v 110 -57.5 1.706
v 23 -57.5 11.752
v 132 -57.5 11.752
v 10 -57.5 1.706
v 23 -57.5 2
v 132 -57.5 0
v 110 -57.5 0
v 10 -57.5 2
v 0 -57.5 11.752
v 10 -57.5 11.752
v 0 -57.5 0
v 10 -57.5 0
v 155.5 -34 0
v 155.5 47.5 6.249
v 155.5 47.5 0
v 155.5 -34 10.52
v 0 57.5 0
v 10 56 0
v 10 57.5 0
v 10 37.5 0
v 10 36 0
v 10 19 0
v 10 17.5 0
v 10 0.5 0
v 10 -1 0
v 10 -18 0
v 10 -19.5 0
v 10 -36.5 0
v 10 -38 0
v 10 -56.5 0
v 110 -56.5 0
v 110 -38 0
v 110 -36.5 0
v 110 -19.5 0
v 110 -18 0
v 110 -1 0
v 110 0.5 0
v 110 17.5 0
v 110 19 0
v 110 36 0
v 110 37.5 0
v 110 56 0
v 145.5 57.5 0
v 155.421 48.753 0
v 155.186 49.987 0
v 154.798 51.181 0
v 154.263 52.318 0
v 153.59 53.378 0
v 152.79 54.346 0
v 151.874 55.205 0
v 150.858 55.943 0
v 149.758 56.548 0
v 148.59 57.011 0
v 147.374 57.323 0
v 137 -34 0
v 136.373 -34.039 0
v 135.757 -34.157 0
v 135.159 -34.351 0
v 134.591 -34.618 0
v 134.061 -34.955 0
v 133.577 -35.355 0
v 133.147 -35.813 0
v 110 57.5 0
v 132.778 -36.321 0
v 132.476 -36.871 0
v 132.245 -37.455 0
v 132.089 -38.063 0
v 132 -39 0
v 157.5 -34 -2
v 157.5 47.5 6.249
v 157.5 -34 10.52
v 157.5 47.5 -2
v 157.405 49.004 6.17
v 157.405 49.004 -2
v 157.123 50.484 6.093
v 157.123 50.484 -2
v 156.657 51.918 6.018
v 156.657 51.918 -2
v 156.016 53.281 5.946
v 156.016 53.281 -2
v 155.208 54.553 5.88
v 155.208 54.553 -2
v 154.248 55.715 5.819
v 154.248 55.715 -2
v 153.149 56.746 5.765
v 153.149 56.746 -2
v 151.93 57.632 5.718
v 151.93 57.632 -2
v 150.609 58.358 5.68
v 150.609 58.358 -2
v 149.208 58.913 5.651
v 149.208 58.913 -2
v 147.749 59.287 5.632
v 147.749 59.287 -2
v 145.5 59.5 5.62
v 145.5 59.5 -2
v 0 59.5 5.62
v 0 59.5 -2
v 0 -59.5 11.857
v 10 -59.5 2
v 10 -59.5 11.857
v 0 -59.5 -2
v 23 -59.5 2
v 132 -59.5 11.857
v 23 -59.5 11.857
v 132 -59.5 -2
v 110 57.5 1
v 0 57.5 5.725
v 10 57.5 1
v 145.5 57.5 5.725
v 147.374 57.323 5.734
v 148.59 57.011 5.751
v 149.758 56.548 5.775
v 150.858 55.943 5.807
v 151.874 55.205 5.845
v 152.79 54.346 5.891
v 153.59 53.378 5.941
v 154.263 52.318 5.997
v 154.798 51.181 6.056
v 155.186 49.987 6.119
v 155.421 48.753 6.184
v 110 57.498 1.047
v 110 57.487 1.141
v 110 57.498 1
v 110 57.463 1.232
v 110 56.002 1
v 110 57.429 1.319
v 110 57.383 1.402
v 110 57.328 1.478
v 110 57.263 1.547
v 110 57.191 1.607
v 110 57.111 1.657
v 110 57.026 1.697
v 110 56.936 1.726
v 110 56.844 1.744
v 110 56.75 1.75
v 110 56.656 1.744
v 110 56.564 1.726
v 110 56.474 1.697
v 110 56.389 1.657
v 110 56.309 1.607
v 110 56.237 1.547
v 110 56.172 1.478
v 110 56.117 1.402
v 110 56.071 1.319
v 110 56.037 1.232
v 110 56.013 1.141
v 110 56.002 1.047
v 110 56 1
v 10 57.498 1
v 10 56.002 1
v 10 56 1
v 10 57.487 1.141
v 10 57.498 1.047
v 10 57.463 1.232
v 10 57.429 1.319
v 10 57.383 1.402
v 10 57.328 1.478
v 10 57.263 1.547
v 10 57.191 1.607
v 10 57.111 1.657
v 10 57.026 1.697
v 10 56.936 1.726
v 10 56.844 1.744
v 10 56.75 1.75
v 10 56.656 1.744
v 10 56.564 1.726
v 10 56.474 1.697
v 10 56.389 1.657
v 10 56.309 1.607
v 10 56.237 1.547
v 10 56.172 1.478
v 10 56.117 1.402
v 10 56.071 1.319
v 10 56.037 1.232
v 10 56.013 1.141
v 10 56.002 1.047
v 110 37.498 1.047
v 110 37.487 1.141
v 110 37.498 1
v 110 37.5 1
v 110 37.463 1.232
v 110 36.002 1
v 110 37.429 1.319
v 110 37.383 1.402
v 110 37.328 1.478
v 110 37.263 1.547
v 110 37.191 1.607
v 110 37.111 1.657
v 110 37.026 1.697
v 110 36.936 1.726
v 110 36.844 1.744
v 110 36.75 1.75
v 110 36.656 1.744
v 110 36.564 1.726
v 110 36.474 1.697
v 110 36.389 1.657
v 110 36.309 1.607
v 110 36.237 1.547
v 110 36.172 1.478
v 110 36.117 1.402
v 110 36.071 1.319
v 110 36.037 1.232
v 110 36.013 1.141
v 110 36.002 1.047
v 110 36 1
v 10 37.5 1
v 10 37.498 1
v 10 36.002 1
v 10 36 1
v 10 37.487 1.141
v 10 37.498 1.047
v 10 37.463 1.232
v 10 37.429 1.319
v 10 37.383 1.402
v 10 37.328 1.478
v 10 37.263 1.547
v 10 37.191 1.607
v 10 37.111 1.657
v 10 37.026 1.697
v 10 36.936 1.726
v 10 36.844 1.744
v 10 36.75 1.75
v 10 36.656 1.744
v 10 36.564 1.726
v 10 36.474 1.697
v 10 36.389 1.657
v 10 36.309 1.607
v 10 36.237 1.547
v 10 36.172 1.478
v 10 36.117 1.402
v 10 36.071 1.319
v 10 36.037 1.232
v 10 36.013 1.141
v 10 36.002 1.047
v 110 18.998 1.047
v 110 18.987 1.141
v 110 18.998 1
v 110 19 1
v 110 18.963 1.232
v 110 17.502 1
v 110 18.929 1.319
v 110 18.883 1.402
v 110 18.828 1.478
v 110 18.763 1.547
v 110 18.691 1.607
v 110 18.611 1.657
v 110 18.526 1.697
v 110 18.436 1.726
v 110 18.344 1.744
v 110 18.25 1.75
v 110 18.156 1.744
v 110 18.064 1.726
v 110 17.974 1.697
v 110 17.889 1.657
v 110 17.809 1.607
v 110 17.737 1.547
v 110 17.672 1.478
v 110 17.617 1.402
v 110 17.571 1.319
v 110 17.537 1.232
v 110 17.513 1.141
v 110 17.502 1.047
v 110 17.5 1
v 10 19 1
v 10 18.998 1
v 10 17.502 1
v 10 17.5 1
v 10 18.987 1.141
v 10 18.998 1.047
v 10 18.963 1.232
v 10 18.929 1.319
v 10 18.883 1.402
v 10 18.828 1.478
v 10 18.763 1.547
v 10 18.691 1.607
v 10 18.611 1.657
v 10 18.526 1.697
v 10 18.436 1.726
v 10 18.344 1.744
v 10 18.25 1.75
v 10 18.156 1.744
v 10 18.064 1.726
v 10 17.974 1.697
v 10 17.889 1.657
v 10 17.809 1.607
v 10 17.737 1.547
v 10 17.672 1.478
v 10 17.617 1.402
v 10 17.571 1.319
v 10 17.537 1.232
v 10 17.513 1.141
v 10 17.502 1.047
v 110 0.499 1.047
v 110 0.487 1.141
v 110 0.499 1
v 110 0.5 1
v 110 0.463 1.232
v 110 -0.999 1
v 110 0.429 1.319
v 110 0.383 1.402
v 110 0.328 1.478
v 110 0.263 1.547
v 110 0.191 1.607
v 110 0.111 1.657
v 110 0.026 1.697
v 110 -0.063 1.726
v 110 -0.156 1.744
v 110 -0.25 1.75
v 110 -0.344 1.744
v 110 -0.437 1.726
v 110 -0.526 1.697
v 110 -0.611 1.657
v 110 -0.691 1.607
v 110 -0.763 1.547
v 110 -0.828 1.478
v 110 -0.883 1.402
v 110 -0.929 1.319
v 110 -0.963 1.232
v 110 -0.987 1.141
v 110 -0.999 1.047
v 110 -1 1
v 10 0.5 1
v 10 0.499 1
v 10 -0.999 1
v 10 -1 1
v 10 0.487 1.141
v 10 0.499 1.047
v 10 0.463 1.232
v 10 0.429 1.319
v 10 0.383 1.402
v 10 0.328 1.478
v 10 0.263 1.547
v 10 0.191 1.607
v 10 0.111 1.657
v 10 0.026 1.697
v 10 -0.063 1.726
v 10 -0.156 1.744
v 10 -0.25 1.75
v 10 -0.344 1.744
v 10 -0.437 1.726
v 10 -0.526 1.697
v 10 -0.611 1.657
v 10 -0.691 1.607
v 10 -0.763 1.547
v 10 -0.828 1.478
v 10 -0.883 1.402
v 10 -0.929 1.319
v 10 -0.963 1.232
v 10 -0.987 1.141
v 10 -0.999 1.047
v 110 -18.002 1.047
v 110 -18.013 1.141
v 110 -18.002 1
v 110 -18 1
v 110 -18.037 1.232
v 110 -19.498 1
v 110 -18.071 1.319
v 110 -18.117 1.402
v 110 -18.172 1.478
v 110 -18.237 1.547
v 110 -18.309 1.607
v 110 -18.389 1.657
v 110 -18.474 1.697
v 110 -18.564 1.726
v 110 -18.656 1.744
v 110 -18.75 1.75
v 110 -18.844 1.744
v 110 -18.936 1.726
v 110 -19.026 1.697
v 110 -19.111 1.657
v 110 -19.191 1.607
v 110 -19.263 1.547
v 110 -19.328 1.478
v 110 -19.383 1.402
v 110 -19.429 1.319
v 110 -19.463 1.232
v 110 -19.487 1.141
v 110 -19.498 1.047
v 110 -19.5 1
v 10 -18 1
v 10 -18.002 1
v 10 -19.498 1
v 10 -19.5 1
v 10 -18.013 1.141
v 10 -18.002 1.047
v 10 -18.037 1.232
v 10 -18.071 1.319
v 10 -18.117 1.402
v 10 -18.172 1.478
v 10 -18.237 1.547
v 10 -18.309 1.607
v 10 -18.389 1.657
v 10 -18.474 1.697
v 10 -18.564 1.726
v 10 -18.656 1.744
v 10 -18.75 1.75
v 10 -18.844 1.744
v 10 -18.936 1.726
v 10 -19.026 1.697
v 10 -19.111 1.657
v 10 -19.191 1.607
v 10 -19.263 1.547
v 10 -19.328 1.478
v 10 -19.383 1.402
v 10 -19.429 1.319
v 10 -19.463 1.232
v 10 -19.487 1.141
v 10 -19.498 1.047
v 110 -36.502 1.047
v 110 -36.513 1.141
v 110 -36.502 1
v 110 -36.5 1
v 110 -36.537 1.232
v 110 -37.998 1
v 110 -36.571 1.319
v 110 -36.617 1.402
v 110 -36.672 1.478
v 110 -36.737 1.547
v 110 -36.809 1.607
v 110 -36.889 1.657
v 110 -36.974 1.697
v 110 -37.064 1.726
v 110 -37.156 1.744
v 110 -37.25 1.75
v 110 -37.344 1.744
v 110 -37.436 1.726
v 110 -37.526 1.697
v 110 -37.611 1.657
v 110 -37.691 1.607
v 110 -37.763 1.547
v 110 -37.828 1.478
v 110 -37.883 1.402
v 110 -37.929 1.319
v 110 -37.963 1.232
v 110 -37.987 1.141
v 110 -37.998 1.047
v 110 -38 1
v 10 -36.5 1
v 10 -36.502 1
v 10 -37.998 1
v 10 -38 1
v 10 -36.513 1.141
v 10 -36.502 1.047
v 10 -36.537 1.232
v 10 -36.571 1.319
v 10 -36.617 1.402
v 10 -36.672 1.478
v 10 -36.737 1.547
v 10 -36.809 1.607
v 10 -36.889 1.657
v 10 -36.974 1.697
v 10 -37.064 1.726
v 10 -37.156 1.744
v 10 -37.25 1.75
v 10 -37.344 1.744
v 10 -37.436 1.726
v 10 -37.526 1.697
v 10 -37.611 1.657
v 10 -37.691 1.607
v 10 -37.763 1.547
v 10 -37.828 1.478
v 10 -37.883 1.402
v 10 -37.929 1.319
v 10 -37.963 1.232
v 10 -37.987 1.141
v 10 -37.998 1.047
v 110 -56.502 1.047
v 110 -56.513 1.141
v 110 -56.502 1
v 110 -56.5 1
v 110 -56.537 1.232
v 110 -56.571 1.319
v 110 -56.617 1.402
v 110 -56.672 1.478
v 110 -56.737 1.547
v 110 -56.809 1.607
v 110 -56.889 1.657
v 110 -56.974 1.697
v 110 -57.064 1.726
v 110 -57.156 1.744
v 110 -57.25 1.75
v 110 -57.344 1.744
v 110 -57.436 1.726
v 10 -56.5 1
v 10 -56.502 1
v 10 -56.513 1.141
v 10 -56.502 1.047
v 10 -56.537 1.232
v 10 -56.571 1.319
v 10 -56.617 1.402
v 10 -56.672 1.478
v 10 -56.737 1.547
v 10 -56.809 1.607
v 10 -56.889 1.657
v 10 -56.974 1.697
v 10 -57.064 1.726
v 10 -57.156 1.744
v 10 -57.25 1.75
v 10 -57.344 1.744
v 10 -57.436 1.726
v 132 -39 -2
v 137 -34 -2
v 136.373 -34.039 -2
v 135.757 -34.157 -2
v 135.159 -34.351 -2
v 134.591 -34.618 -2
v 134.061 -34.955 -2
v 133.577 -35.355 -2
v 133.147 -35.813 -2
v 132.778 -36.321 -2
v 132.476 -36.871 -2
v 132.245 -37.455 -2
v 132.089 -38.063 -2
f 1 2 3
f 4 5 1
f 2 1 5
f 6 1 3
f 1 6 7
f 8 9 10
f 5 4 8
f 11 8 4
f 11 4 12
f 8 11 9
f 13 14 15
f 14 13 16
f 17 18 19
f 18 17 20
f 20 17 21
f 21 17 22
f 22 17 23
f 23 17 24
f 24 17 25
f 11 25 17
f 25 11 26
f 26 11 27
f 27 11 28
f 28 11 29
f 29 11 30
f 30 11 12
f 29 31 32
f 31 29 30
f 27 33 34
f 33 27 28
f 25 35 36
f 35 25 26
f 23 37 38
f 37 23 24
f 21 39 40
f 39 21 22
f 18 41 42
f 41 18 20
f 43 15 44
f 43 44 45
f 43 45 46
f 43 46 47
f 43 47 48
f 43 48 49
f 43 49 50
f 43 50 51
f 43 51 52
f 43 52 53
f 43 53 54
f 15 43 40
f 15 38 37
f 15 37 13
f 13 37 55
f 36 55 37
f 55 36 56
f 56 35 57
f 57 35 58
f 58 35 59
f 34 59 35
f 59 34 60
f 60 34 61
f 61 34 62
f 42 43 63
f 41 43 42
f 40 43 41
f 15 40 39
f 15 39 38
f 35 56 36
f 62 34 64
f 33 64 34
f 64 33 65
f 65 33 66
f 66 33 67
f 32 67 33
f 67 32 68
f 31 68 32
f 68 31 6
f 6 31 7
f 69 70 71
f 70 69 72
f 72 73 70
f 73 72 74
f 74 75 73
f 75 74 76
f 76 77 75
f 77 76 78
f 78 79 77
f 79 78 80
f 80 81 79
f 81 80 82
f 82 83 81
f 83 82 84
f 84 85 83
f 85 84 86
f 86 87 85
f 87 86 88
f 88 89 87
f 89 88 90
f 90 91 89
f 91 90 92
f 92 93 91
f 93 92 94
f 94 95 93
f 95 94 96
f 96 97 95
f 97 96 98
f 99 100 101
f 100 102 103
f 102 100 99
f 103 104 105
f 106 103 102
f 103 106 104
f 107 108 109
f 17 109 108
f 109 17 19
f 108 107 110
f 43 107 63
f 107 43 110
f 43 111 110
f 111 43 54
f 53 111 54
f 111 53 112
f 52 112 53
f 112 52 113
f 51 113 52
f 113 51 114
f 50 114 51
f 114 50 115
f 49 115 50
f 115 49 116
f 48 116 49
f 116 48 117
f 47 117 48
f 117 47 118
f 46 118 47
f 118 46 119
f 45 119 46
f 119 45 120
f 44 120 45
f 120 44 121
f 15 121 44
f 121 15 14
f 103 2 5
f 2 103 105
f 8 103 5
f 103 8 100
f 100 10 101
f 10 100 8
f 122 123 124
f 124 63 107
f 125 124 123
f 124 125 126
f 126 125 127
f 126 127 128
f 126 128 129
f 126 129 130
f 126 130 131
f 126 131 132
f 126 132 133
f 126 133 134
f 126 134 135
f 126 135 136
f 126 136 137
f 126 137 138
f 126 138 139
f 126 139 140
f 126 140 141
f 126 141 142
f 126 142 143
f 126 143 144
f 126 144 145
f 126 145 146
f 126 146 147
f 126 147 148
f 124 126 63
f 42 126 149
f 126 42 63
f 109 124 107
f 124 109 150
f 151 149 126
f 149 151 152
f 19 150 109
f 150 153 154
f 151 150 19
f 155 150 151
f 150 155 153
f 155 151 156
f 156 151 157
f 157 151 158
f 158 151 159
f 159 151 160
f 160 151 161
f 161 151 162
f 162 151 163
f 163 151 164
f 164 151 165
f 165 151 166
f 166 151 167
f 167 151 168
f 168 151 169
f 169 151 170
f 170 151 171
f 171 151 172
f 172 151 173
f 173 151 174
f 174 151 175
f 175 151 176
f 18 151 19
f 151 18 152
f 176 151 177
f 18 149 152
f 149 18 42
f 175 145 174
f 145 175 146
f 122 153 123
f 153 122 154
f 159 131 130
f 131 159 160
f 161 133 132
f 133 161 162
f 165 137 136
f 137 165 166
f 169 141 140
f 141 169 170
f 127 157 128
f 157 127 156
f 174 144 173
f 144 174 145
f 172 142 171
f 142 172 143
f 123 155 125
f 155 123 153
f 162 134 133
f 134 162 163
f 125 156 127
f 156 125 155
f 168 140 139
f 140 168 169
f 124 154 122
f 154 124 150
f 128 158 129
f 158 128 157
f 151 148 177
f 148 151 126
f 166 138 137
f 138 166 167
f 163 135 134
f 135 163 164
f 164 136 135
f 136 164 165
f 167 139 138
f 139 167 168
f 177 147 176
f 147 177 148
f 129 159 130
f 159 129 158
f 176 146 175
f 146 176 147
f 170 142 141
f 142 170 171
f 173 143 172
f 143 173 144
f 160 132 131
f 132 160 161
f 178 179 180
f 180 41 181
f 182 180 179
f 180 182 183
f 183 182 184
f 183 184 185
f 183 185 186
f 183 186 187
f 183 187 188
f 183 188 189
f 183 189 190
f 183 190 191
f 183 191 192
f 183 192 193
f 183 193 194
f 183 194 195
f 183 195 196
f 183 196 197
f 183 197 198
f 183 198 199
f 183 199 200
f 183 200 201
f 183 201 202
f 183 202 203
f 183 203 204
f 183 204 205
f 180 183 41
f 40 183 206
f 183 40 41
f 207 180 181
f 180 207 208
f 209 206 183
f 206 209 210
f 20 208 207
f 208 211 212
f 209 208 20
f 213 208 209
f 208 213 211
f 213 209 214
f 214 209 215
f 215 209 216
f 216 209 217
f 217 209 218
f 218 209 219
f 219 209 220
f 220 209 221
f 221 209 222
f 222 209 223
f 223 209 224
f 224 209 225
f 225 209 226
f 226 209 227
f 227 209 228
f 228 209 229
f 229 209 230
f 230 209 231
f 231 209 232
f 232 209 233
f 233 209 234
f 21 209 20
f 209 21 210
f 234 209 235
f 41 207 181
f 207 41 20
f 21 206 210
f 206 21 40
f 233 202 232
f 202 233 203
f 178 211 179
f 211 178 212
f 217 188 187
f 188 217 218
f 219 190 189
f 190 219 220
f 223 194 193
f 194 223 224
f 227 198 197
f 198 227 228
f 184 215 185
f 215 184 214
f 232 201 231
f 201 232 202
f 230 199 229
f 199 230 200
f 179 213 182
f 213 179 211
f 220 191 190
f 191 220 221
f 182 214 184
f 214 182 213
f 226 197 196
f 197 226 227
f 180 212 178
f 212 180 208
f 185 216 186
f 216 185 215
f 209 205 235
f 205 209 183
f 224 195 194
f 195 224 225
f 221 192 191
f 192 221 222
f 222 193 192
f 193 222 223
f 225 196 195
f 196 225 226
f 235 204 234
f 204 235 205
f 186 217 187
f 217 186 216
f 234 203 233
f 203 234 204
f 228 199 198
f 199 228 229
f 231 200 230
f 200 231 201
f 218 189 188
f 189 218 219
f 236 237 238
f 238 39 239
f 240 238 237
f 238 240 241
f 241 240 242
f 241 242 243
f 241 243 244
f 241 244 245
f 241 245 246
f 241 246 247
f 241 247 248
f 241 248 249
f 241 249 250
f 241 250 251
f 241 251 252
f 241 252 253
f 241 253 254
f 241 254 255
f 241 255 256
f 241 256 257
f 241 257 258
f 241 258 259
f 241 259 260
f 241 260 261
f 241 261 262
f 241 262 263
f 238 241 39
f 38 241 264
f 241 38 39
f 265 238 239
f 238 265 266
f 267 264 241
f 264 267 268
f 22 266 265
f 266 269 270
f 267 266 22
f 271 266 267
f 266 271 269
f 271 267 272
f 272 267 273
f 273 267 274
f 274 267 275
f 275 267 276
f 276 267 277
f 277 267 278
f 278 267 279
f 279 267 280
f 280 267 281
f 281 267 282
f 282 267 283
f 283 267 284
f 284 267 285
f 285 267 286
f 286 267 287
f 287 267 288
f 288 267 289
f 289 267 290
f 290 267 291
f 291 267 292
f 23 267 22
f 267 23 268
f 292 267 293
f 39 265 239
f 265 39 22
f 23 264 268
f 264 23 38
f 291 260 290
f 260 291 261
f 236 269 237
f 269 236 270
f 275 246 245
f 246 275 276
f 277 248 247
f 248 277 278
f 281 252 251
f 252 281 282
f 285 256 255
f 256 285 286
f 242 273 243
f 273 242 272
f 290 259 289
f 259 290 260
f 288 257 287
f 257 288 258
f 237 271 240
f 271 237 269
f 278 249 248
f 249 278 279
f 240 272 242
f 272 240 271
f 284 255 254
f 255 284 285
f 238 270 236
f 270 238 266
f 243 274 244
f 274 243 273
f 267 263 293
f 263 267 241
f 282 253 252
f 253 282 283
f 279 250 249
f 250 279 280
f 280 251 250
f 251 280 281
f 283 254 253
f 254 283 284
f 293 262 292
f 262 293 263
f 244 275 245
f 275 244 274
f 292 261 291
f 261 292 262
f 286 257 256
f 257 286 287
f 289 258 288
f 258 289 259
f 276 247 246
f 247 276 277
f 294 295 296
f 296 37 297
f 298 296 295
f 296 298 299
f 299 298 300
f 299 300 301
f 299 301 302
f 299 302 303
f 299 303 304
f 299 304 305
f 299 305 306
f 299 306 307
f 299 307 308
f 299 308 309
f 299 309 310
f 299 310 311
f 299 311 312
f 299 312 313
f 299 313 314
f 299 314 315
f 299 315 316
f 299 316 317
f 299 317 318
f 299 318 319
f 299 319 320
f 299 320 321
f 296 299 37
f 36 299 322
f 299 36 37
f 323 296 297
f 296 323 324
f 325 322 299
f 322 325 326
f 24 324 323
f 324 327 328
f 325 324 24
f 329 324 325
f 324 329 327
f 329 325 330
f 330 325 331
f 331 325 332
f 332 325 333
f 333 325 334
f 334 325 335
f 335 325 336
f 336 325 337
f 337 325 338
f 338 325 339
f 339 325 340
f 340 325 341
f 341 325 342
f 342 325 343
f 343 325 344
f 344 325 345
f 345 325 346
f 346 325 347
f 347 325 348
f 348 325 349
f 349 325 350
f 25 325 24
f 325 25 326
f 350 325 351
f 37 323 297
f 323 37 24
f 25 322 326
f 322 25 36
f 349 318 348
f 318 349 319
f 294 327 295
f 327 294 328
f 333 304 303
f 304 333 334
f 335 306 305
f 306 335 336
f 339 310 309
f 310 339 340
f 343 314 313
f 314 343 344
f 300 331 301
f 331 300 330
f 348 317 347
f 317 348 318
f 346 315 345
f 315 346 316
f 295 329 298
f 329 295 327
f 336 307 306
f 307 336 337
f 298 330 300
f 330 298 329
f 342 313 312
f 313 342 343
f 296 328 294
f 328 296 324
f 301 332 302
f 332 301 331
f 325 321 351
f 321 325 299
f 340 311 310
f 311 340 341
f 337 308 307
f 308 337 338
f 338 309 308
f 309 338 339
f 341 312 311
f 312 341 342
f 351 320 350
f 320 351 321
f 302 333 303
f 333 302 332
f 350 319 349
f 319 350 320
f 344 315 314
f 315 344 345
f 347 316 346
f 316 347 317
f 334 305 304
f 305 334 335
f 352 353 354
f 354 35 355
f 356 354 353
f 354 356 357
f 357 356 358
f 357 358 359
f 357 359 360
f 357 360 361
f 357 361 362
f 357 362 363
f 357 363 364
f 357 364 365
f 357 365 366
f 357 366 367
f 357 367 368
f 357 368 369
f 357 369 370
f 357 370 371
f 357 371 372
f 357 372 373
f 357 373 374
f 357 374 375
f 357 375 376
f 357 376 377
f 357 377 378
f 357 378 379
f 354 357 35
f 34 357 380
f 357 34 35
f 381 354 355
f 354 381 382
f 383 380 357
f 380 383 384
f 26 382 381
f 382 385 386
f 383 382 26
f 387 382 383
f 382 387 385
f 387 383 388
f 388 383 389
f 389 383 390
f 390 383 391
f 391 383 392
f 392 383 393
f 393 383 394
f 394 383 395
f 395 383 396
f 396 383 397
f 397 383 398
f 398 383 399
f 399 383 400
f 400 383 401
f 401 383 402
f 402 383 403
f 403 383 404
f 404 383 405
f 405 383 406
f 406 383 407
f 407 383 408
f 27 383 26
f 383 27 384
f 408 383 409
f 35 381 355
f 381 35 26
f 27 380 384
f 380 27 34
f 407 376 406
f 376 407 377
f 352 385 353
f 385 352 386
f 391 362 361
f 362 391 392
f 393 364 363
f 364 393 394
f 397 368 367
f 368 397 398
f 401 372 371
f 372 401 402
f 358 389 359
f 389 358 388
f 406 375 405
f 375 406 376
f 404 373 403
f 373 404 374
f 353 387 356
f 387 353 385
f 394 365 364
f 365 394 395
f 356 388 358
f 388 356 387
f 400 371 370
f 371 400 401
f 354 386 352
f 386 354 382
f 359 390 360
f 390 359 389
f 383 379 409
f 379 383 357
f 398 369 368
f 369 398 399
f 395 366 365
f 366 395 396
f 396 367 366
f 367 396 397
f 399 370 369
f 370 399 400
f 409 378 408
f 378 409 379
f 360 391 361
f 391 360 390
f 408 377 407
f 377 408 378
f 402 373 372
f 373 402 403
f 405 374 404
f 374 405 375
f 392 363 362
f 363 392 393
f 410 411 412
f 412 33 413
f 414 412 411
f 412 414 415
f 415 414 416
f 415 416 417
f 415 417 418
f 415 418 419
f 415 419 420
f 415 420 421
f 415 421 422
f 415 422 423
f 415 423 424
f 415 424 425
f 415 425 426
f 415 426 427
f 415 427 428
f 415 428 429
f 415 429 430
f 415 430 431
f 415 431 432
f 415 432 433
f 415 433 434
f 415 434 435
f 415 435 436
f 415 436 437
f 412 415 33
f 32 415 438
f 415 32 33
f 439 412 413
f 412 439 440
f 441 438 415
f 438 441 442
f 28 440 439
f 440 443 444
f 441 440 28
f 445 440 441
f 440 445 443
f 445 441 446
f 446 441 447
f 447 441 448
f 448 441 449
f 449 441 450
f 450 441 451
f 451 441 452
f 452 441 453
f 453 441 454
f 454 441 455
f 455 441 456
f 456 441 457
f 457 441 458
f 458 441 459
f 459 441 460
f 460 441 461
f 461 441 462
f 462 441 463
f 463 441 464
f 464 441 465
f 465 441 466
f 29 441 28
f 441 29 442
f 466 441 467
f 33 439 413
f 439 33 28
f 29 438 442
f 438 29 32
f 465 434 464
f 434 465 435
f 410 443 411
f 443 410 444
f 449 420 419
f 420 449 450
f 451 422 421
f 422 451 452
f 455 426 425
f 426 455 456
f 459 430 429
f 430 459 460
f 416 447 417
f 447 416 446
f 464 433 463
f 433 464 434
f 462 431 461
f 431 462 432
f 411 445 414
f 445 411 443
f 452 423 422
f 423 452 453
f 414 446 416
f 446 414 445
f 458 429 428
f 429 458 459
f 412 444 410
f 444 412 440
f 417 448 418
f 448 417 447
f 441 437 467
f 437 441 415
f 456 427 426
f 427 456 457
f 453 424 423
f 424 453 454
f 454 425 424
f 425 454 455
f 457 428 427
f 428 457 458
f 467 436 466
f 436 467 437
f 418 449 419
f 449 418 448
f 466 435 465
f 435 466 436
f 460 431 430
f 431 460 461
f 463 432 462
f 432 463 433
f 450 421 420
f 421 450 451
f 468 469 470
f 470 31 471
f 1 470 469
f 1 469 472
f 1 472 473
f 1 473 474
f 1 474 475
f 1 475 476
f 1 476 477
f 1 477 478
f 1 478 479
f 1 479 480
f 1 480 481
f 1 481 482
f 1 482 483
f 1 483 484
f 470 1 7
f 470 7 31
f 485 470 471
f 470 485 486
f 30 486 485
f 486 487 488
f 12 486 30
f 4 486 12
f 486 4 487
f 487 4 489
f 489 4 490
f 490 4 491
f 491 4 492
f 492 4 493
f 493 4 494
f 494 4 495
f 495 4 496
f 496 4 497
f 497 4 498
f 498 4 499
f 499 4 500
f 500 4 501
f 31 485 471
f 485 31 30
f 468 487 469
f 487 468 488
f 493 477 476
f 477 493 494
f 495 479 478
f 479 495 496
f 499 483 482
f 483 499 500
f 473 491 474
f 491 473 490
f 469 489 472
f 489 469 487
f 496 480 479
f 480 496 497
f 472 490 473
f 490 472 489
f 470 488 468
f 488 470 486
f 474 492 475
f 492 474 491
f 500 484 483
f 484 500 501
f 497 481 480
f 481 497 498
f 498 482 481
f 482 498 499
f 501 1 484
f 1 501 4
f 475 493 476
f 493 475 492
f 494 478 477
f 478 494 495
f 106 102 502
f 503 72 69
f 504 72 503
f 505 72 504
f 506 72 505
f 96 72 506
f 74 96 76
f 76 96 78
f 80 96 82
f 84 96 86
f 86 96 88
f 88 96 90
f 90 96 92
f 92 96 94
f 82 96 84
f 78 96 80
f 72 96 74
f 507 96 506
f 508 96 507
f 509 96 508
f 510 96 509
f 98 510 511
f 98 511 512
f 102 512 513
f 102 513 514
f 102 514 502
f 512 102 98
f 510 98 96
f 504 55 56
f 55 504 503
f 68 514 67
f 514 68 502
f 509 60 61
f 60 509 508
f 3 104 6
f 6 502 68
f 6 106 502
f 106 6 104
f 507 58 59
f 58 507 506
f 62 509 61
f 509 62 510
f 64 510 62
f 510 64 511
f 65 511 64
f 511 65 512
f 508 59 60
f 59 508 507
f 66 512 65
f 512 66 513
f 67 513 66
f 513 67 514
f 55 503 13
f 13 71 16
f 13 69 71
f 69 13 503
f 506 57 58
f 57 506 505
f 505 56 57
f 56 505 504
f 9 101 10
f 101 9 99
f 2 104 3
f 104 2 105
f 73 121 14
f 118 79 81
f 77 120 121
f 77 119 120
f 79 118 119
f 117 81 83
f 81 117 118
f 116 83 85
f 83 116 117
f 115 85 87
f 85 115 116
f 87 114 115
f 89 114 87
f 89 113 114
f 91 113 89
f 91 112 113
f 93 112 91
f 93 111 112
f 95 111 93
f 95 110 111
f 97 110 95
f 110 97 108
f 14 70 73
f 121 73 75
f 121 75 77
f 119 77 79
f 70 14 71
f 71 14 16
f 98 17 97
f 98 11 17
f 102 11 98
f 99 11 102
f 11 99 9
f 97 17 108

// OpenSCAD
module top_right_corner() {
    intersection() {
        linear_extrude(height = 22, slices = 60, $fn=50) {
           difference() {
             offset(r = 8) {
              square(8, center = true);
             }
             offset(r = 6) {
               square(8, center = true);
             }
           }
         }
         translate([0,0,-1])
         cube([20, 20, 40]);
     }
     intersection () {
         translate([0, 0, -2])
          linear_extrude(height = 2, slices = 60, $fn=50) {
           offset(r = 8) {
              square(8, center = true);
             }
         }
         translate([0,0,-10])
         cube([20, 20, 40]);
     }
 }
 module top_left_corner() {
     intersection() {
     translate([-3, -3, 0])
     linear_extrude(height = 22, slices = 60, $fn=50) {
         difference() {
            offset(r=12) {square(6, center = true); }
            offset(r = 10) { square(6, center = true); }
         }
     }
     translate([-40, 0 , -1])
     cube([40, 40, 40]);
     }
     intersection () {
        translate([-3, -3, -2])
          linear_extrude(height = 2, slices = 60, $fn=50) {
            offset(r=12) {square(6, center = true); }
         }
         translate([-40,0,-10])
         cube([40, 40, 40]);
     }
 }
 
module bottom_left_corner() {
 intersection() {
     translate([-3, 3, 0])
     linear_extrude(height = 22, slices = 60, $fn=50) {
         difference() {
            offset(r=12) {square(6, center = true); }
            offset(r = 10) { square(6, center = true); }
         }
     }
     translate([-40, -40 , -1])
     cube([40, 40, 40]);
     }
     intersection () {
        translate([-3, 3, -2])
          linear_extrude(height = 2, slices = 60, $fn=50) {
            offset(r=12) {square(6, center = true); }
         }
         translate([-40,-40,-10])
         cube([40, 40, 40]);
     }
 }
 
 module bottom_right_corner() {
     translate([0, -12, -2])
     cube([12, 12, 2]);
     translate([10, -12, -2])
     cube([2, 12, 24]);
     translate([0, -12, -2])
     cube([12, 2, 24]);
 }
 
 module base() {
     top_right_corner();
     top_left_corner();
     bottom_left_corner();
     bottom_right_corner();
 }
 
 module previous() {
     translate([0, 0, 12])
     rotate(a=90, v=[0, 1, 0])
     difference() {
         base();
         translate([-40, -10, 0])
         cube([40, 20, 20]);
         translate([-30, -20, 0])
         cube([40, 20, 20]);
     }
 }
 
 RADIUS = 10;
 WIDTH = 114;
 LENGTH = 310;
 SHELL = 2;
 
 HEIGHT= 10;
 
 TOLERANCE = 1;
 
 HOLE_SIZE = 16;
 HOLE_SIZE_HORIZONTAL_DIFF = 5;
 HOLE_SIZE_VERTICAL_DIFF = 10;
 HOLE_RADIUS = 5;
 
 // 19 and then 18.5, 18.5 ...
 

module cover() {
    difference() {
  linear_extrude(height = 2 * HEIGHT, slices = 60, $fn=50) {
         difference() {
            offset(r=(RADIUS + SHELL)) {square([LENGTH - 2 * RADIUS + TOLERANCE, WIDTH - 2 * RADIUS + TOLERANCE], center = true); }
            offset(r = RADIUS) { square([LENGTH - 2 * RADIUS + TOLERANCE, WIDTH - 2 * RADIUS + TOLERANCE], center = true); }
         }
     }
   translate([10,  -0.5 * (WIDTH - 2 * RADIUS + TOLERANCE) - RADIUS - 10, 8])
   cube([13, 20, 50]);
 }
     translate([0, 0, -SHELL])
    linear_extrude(height = SHELL, slices = 60, $fn=50) {
         offset(r=(RADIUS + SHELL)) {square([LENGTH - 2 * RADIUS + TOLERANCE, WIDTH - 2 * RADIUS + TOLERANCE], center = true); }
     }
     union() {
         translate([0, 0.5 * (WIDTH - 2 * RADIUS + TOLERANCE) + RADIUS - 3, 0])
         cube([100, 5, 12]);
         translate([0, -0.5 * (WIDTH - 2 * RADIUS + TOLERANCE) - RADIUS - 2, 0])
         cube([100, 5, 12]);
     }
 }
 
 module cover_with_hole() {
     difference() {
         cover();
         translate([(LENGTH - 20) / 2, -(WIDTH - 20) / 2 , 0])
            intersection() {
             translate([0, 0, -2 * SHELL])
             linear_extrude(height = 5 * SHELL, slices = 60, $fn=50) {
                 offset(r=(RADIUS)) {square(1, center = true); }
             }
             translate([0, -50, -25])
             cube([50, 50, 50]);
         }
         // top right
         translate([(LENGTH - HOLE_RADIUS - HOLE_SIZE_HORIZONTAL_DIFF - HOLE_SIZE + 2) / 2 + 15, -(WIDTH -5 - HOLE_RADIUS - HOLE_SIZE + 2) / 2 - 15, -2 * SHELL])
         linear_extrude(height = 5 * SHELL + 50, slices = 60, $fn=50) {
             offset(r=(HOLE_RADIUS)) {square([HOLE_SIZE + HOLE_SIZE_HORIZONTAL_DIFF - 2 * HOLE_RADIUS + TOLERANCE + 30, HOLE_SIZE + HOLE_SIZE_VERTICAL_DIFF - 5 - 2 * HOLE_RADIUS + TOLERANCE + 30], center = true); }
         }
         // top left
         /*
         translate([(LENGTH - HOLE_RADIUS - HOLE_SIZE_HORIZONTAL_DIFF - HOLE_SIZE + 5) / 2, -(WIDTH - HOLE_RADIUS - HOLE_SIZE + 2) / 2, -2 * SHELL])
         intersection() {
             linear_extrude(height = 5 * SHELL, slices = 60, $fn=50) {
                 offset(r=(HOLE_RADIUS)) {square([HOLE_SIZE - 2 * HOLE_RADIUS + HOLE_SIZE_HORIZONTAL_DIFF + TOLERANCE, HOLE_SIZE - 2 * HOLE_RADIUS + TOLERANCE + HOLE_SIZE_VERTICAL_DIFF + 5], center = true); }
             }
             translate([0, 0, -25])
             cube([50, 50, 50]);
         }
         translate([(LENGTH - HOLE_RADIUS - HOLE_SIZE_HORIZONTAL_DIFF - HOLE_SIZE + 5) / 2, -(WIDTH - HOLE_RADIUS - HOLE_SIZE + 2) / 2, -2 * SHELL])
         intersection() {
             linear_extrude(height = 15 * SHELL, slices = 60, $fn=50) {
                 offset(r=(HOLE_RADIUS)) {square([HOLE_SIZE - 2 * HOLE_RADIUS + HOLE_SIZE_HORIZONTAL_DIFF + TOLERANCE + 20, HOLE_SIZE - 2 * HOLE_RADIUS + TOLERANCE + HOLE_SIZE_VERTICAL_DIFF + 5], center = true); }
             }
             translate([0, 0, -25])
             cube([50, 50, 50]);
         }
         // bottom right
         translate([(LENGTH - HOLE_RADIUS + 5 - HOLE_SIZE_HORIZONTAL_DIFF - HOLE_SIZE + 2) / 2, -(WIDTH - HOLE_RADIUS - HOLE_SIZE + 5) / 2, -2 * SHELL])
         intersection() {
             linear_extrude(height = 5 * SHELL, slices = 60, $fn=50) {
                 offset(r=(HOLE_RADIUS)) {square([HOLE_SIZE + 5 + HOLE_SIZE_HORIZONTAL_DIFF - 2 * HOLE_RADIUS + TOLERANCE, HOLE_SIZE - 2 * HOLE_RADIUS + TOLERANCE], center = true); }
             }
             translate([-100, -100, -25])
             cube([100, 100, 50]);
         }
         */
     }
 }
 
 RAIL_LENGTH = 100;
 RAIL_RADIUS = 0.75;
 RAIL_HEIGHT = 1;
 RAIL_INDENT = 10;
 
 module rail() {
     translate([RAIL_INDENT, -2 * RAIL_RADIUS, 0])
     cube([RAIL_LENGTH, 2 * RAIL_RADIUS,RAIL_HEIGHT]); 
     translate([RAIL_INDENT, -RAIL_RADIUS, RAIL_HEIGHT])
     rotate(a=90, v=[0, 1, 0])
     cylinder(h=RAIL_LENGTH, r=RAIL_RADIUS, center=false, $fn=50);
 }
 
 NEW_HEIGHT = 8;
 
 module cover_new() {
     // outer side shell, with hole for plug
    difference() {
      linear_extrude(height = 2 * NEW_HEIGHT, slices = 60, $fn=50) {
             difference() {
                offset(r=(RADIUS + SHELL)) {square([LENGTH - 2 * RADIUS + TOLERANCE, WIDTH - 2 * RADIUS + TOLERANCE], center = true); }
                offset(r = RADIUS) { square([LENGTH - 2 * RADIUS + TOLERANCE, WIDTH - 2 * RADIUS + TOLERANCE], center = true); }
             }
         }
       translate([10,  -0.5 * (WIDTH - 2 * RADIUS + TOLERANCE) - RADIUS - 10, 2])
       cube([13, 20, 50]);
     }
     // bottom shell
     translate([0, 0, -SHELL])
        linear_extrude(height = SHELL, slices = 60, $fn=50) {
             offset(r=(RADIUS + SHELL)) {square([LENGTH - 2 * RADIUS + TOLERANCE, WIDTH - 2 * RADIUS + TOLERANCE], center = true); }
     }
     
     // rails
     translate([0, RADIUS + 0.5 *(WIDTH - 2 * RADIUS + TOLERANCE), 0])
     rail();
     
     for (idx =[0:4]) {
         translate([0, RADIUS + 0.5 *(WIDTH - 2 * RADIUS + TOLERANCE) - 20 - 18.5 * idx, 0])
     rail();
     }
     translate([0, RADIUS + 0.5 *(WIDTH - 2 * RADIUS + TOLERANCE)- 20 - 18.5 * 4 - 20, 0])
     rail();
 }
 
  module cover_new_with_holes() {
     difference() {
         cover_new();
         translate([(LENGTH - 20) / 2, -(WIDTH - 20) / 2 , 0])
            intersection() {
             translate([0, 0, -2 * SHELL])
             linear_extrude(height = 5 * SHELL, slices = 60, $fn=50) {
                 offset(r=(RADIUS)) {square(1, center = true); }
             }
             translate([0, -50, -25])
             cube([50, 50, 50]);
         }
         // minus the corner
         translate([(LENGTH - HOLE_RADIUS - HOLE_SIZE_HORIZONTAL_DIFF - HOLE_SIZE + 2) / 2 + 15, -(WIDTH -5 - HOLE_RADIUS - HOLE_SIZE + 2) / 2 - 15, -2 * SHELL])
         linear_extrude(height = 5 * SHELL + 50, slices = 60, $fn=50) {
             offset(r=(HOLE_RADIUS)) {square([HOLE_SIZE + HOLE_SIZE_HORIZONTAL_DIFF - 2 * HOLE_RADIUS + TOLERANCE + 30, HOLE_SIZE + HOLE_SIZE_VERTICAL_DIFF - 5 - 2 * HOLE_RADIUS + TOLERANCE + 30], center = true); }
         }
         translate([0, 0, -7])
        cutoff_cube();
     }
 }
 
 module bottom_new() {
    intersection() {
        cover_new_with_holes();
         translate([0, -100, -100])
         cube([200, 200, 200]);
    }
}

 
 module trunk() {
     intersection() {
         cover_with_hole();
         // cover();
         translate([0, -100, -100])
         cube([200, 200, 200]);
     }
 }
 
 module cutoff_cube() {
     mirror([0, 1,0]) {
         translate([0, -WIDTH/2-TOLERANCE/2-SHELL -50,HEIGHT])
         rotate(a=3,v=[1, 0 ,0])
         translate([-200, 0, 0])
     cube([400, 300, 100]);
     }
}

module bottom() {
    difference() {
        trunk();
        cutoff_cube();
    }
}

module cover_top() {
    difference() {
      linear_extrude(height = 2 * HEIGHT, slices = 60, $fn=50) {
             difference() {
                offset(r=(RADIUS + 2 * SHELL + TOLERANCE)) {square([LENGTH - 2 * RADIUS + TOLERANCE, WIDTH - 2 * RADIUS + TOLERANCE], center = true); }
                offset(r = (RADIUS+SHELL + TOLERANCE)) { square([LENGTH - 2 * RADIUS + TOLERANCE, WIDTH - 2 * RADIUS + TOLERANCE], center = true); }
             }
         }
         cutoff_cube();
     }
     intersection() {
         linear_extrude(height = 2 * HEIGHT + SHELL, slices = 60, $fn=50) {
             offset(r=(RADIUS + 2 * SHELL + TOLERANCE)) {square([LENGTH - 2 * RADIUS + TOLERANCE, WIDTH - 2 * RADIUS + TOLERANCE], center = true); }
         }
         cutoff_cube();
     }
 }
 
module top() {
    difference() {
        intersection() {
        cover_top();
         translate([0, -100, -100])
         cube([200, 200, 200]);
        }
    // top right
         translate([(LENGTH - HOLE_RADIUS - HOLE_SIZE_HORIZONTAL_DIFF - HOLE_SIZE + 2) / 2 + 15, -(WIDTH -5 - HOLE_RADIUS - HOLE_SIZE + 2) / 2 - 15, -2 * SHELL])
         linear_extrude(height = 5 * SHELL + 50, slices = 60, $fn=50) {
             offset(r=(HOLE_RADIUS)) {square([HOLE_SIZE + HOLE_SIZE_HORIZONTAL_DIFF - 2 * HOLE_RADIUS + TOLERANCE + 30, HOLE_SIZE + HOLE_SIZE_VERTICAL_DIFF - 5 - 2 * HOLE_RADIUS + TOLERANCE + 30], center = true); }
         }
   translate([10,  -0.5 * (WIDTH - 2 * RADIUS + TOLERANCE) - RADIUS - 20, -5])
   cube([13, 20, 100]);
     }
}
bottom_new();
